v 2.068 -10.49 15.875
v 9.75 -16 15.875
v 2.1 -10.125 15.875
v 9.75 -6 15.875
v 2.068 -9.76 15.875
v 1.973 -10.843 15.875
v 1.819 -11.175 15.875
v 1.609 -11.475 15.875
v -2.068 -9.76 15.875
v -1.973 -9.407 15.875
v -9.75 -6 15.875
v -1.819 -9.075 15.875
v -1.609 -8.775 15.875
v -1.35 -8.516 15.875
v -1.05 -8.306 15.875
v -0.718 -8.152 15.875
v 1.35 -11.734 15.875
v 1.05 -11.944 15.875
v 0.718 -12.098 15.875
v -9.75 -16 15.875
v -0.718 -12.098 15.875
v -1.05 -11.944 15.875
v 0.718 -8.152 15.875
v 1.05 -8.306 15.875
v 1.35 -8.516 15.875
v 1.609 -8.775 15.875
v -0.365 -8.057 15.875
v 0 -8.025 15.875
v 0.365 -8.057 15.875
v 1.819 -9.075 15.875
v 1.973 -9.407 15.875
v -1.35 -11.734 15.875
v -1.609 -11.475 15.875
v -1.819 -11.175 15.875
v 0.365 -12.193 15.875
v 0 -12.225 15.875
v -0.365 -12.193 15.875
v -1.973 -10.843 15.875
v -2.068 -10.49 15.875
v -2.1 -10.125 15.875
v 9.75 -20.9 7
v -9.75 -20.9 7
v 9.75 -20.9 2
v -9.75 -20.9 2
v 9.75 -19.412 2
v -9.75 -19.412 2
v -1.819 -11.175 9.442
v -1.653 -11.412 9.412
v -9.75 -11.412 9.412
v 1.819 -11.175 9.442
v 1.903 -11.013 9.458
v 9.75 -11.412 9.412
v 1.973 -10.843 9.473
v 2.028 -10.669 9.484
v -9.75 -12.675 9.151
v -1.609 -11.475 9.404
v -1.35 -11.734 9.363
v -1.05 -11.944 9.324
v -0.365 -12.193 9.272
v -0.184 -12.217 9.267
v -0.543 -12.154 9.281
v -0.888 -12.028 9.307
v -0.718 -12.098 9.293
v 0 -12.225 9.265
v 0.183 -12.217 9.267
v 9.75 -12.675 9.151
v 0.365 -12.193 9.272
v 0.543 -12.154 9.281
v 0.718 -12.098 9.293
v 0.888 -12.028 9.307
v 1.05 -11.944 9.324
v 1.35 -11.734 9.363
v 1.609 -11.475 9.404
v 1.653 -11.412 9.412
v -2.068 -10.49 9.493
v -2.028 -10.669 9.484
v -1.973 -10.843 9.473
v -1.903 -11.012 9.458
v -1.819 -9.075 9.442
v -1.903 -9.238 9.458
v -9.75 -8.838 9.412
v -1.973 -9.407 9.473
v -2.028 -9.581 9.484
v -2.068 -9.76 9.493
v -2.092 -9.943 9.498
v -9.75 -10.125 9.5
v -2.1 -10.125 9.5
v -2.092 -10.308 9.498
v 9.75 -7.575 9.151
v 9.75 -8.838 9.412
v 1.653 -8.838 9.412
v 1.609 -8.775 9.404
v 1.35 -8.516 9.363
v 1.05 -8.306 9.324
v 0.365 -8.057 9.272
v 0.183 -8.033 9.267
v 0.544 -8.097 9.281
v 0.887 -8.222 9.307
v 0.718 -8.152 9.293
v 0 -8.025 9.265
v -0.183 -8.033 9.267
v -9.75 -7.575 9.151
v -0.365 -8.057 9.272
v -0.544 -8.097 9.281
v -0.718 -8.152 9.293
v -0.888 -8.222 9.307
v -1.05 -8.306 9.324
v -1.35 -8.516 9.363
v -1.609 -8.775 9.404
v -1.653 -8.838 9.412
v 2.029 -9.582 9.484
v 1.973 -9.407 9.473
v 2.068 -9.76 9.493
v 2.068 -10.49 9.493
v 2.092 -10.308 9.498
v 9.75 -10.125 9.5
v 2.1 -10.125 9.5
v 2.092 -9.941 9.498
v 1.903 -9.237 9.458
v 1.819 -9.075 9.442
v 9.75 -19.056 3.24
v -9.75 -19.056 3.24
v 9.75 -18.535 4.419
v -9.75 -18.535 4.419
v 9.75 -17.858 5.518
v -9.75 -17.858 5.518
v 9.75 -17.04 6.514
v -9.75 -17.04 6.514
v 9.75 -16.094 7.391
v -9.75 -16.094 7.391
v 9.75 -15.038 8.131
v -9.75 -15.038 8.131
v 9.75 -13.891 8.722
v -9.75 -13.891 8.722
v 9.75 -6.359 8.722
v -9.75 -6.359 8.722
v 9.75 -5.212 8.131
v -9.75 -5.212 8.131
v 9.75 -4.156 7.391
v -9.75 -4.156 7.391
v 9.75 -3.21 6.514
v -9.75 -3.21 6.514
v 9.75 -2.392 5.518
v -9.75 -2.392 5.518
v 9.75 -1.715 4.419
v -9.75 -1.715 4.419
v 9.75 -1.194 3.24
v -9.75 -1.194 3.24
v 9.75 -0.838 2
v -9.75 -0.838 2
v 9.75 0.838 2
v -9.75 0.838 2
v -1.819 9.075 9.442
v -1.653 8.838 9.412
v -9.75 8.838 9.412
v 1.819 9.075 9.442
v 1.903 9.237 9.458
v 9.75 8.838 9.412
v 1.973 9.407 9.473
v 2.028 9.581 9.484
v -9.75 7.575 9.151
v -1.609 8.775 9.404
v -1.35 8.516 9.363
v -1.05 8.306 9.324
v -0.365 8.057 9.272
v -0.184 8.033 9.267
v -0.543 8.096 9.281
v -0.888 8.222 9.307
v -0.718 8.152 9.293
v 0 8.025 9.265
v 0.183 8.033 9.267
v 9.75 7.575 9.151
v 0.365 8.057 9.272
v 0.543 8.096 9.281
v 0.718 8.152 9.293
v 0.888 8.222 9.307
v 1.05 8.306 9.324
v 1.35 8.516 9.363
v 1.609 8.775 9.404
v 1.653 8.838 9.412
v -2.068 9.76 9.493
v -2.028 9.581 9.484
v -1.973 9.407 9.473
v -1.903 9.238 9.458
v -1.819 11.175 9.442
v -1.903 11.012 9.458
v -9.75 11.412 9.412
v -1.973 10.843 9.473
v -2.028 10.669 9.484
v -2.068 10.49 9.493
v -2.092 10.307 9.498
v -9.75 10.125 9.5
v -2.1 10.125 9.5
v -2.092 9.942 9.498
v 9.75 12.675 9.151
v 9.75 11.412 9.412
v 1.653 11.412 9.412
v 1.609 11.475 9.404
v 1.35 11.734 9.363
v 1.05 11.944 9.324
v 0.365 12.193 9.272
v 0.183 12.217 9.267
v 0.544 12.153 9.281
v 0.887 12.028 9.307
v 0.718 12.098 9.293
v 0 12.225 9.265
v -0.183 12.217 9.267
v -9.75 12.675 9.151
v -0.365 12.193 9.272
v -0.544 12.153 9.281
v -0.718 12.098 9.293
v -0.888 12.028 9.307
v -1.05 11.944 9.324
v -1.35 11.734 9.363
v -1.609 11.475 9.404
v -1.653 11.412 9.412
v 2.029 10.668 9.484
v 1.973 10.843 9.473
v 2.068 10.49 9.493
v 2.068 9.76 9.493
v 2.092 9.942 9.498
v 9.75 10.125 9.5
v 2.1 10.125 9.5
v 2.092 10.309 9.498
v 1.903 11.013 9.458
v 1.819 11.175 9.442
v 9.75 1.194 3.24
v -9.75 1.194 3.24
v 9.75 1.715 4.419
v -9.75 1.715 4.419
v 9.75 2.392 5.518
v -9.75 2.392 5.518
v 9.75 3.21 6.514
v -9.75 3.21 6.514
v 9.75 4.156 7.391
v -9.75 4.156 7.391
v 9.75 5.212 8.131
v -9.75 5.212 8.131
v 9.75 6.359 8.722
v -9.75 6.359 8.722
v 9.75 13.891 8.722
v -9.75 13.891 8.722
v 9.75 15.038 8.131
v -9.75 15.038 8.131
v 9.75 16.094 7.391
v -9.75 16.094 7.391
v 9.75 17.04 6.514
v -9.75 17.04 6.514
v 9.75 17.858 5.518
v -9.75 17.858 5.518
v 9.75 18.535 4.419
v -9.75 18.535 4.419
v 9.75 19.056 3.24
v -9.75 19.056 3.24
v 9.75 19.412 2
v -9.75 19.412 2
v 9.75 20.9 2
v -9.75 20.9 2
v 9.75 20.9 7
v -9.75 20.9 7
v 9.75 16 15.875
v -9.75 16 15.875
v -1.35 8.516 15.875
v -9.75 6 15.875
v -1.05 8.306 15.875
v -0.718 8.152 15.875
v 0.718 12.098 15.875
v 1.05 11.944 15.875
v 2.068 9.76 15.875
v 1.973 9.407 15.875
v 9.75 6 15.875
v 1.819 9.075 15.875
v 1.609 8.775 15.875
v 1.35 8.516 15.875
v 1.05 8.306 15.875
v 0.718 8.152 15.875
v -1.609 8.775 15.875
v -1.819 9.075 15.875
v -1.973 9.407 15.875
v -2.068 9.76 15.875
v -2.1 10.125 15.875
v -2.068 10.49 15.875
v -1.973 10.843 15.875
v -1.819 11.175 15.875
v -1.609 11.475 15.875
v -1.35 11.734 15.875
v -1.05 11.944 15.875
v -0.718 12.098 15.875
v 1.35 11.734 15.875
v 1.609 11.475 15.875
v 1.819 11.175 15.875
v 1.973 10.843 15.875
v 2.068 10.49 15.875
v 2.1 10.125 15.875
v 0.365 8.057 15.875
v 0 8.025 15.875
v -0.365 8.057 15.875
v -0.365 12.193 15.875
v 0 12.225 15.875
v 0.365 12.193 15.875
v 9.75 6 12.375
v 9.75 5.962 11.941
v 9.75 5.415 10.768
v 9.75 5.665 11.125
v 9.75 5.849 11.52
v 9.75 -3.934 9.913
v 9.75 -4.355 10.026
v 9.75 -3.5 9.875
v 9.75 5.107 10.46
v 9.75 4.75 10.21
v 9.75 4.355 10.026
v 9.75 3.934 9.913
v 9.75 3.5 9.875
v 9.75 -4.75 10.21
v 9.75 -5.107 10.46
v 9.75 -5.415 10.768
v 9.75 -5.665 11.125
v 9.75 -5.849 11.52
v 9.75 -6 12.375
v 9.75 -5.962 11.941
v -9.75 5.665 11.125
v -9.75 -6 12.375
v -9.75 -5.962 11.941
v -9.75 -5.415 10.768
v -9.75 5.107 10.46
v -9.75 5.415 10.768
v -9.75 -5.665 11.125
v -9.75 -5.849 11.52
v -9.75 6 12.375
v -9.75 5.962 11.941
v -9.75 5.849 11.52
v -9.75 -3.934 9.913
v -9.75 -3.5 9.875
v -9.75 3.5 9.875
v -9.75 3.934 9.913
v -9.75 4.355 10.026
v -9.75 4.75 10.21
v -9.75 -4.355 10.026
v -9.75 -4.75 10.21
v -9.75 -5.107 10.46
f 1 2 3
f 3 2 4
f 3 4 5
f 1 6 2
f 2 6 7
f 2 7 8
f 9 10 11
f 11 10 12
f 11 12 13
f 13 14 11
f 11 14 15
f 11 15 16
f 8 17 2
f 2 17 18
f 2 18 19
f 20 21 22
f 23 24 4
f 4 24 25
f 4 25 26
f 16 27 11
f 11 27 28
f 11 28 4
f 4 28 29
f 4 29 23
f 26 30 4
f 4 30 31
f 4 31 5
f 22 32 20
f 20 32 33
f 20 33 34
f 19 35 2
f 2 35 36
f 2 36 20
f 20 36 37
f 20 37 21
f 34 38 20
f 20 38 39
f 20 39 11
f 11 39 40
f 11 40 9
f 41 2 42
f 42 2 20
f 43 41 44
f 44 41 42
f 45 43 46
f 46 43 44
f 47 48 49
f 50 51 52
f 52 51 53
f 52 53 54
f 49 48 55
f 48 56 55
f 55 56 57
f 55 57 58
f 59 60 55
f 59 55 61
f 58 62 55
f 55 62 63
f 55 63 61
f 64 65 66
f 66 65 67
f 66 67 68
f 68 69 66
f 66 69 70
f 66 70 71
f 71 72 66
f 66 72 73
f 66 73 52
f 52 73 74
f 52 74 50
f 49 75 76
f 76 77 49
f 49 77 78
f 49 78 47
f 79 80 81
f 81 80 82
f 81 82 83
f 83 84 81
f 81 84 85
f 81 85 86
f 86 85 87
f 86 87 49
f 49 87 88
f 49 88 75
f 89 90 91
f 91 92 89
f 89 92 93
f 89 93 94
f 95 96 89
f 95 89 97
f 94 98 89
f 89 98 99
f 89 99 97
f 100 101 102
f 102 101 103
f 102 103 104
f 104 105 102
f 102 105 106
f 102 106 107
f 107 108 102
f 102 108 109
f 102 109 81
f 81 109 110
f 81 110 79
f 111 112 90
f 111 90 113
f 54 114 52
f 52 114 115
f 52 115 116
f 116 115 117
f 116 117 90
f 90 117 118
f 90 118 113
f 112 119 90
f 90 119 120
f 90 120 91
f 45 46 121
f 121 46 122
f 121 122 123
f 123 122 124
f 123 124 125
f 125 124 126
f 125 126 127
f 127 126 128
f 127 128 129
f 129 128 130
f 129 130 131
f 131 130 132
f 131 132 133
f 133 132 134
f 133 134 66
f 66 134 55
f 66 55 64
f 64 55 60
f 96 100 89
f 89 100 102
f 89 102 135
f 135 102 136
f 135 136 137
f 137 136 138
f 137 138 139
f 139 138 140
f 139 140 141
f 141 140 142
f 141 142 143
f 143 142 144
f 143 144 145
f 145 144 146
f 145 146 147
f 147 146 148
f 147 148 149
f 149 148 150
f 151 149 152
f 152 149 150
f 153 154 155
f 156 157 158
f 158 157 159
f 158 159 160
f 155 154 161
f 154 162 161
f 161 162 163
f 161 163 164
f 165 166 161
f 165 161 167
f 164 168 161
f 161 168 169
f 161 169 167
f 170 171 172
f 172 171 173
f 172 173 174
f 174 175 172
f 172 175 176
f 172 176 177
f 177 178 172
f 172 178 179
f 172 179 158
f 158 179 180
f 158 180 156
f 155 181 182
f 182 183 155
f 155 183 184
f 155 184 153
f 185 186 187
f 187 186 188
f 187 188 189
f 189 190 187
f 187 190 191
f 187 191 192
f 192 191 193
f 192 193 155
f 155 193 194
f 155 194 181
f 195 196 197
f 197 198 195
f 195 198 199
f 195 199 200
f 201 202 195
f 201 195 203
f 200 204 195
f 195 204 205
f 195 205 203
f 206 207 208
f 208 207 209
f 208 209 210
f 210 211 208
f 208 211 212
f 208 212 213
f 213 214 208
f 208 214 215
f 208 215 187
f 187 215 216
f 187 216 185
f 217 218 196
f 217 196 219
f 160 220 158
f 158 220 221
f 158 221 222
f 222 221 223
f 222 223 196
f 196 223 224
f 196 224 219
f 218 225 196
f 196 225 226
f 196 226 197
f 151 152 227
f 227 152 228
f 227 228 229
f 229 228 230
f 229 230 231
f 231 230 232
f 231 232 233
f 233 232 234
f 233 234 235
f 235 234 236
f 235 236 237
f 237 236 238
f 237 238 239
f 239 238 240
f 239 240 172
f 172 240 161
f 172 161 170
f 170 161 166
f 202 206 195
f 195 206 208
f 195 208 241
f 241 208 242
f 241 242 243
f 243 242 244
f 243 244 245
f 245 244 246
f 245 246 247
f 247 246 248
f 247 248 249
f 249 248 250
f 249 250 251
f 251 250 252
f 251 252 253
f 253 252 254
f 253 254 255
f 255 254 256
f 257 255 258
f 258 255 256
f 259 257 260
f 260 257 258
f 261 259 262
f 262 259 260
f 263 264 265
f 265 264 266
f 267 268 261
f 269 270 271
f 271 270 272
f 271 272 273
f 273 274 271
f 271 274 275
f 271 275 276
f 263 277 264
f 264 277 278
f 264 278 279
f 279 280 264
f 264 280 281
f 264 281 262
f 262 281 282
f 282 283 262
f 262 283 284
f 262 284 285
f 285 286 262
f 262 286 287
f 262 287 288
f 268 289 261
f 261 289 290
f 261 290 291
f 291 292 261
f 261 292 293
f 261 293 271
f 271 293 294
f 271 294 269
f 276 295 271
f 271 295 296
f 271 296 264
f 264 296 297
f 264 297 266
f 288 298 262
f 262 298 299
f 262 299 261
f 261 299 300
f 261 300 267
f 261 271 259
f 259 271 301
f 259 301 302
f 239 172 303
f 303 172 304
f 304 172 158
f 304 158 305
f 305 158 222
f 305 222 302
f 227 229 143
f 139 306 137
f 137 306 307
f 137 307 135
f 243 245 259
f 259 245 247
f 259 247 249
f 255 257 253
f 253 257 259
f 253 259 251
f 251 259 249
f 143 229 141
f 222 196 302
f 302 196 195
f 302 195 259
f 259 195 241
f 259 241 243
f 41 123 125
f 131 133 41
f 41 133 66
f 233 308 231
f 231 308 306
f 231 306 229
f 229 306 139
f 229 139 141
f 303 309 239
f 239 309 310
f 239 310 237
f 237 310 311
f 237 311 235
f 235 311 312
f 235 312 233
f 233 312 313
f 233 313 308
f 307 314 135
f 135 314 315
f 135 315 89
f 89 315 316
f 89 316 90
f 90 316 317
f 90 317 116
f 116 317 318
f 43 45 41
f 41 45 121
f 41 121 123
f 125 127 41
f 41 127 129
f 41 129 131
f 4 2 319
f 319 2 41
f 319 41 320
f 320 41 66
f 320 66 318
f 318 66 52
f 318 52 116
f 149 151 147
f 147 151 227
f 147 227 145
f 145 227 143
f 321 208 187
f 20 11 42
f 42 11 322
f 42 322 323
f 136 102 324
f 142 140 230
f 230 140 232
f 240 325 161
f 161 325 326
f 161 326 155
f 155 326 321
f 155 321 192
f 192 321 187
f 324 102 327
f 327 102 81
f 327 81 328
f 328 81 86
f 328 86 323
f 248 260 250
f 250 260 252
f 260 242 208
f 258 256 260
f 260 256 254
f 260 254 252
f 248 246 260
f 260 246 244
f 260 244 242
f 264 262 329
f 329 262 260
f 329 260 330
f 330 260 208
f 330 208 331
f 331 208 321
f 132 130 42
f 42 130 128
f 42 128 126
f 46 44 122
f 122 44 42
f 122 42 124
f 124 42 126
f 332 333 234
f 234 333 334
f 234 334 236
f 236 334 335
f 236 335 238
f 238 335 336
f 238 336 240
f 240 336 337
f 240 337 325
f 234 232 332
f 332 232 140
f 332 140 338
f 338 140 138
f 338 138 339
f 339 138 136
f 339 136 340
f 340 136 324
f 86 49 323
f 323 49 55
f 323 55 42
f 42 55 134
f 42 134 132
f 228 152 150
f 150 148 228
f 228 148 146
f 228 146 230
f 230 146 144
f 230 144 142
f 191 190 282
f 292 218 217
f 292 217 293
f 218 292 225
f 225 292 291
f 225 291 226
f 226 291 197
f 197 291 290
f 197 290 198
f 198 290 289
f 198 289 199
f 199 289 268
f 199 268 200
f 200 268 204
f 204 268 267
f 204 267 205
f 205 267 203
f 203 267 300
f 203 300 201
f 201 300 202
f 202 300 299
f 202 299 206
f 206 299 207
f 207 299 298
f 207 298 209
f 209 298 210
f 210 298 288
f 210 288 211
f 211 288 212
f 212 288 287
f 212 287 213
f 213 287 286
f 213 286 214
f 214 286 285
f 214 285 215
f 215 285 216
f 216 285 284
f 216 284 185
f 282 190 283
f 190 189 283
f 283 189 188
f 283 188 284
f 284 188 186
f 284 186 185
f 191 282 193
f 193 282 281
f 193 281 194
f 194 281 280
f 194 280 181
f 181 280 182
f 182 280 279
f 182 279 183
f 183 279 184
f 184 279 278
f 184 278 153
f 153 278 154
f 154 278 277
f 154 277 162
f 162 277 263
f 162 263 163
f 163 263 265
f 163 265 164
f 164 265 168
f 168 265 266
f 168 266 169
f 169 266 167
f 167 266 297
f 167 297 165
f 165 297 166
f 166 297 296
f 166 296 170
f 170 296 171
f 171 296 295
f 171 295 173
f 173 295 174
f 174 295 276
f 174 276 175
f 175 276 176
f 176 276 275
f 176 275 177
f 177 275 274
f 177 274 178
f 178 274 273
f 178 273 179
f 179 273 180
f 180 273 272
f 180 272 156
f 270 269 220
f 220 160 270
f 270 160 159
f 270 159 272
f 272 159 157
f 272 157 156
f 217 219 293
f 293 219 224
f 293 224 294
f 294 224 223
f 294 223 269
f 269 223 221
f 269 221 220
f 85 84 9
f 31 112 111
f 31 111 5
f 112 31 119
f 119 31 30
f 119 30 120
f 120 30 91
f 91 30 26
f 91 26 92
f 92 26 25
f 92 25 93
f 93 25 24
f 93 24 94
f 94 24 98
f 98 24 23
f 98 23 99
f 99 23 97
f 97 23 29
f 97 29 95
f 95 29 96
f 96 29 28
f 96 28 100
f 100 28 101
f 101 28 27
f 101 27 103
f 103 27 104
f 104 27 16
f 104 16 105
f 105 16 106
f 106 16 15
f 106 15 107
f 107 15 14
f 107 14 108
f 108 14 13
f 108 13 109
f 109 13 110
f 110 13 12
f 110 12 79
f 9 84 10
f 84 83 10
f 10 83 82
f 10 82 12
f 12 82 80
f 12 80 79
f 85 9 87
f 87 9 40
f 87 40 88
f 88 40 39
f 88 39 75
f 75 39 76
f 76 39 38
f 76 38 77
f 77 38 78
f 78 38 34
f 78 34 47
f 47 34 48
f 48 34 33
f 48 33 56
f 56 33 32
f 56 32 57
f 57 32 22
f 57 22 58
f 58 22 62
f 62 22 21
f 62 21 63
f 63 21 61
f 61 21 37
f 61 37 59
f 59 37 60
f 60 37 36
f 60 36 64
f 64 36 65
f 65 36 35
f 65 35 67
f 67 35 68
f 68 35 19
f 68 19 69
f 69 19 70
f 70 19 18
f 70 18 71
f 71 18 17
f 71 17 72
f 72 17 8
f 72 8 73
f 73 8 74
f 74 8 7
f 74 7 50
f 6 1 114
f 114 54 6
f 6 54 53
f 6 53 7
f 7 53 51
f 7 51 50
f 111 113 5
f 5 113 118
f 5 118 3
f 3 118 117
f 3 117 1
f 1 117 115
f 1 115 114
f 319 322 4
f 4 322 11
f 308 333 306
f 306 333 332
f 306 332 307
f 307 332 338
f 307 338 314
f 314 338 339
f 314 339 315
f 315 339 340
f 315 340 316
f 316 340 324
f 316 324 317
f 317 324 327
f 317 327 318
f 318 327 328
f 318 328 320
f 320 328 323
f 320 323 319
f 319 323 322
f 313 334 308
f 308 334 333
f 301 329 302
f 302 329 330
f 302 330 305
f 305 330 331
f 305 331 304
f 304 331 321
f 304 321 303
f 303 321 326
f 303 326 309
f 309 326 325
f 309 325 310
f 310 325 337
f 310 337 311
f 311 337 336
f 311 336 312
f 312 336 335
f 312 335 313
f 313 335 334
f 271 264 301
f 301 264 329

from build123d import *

# Parameters (mm, degrees)
BOSS_EXTRUDE1_DEPTH     = 9.75
SKETCH2_R               = 2.1
CUT_EXTRUDE1_DEPTH      = 27.914459404
CUT_EXTRUDE2_DEPTH      = 33.696722039
CUT_EXTRUDE2_DEPTH_BACK = 33.696722039


with BuildPart() as part:
    # Sketch1 → Boss-Extrude1 (new, symmetric)
    with BuildSketch(Plane(origin=(0, 0, 0), x_dir=(0, 0, -1), z_dir=(1, 0, 0))):
        with BuildLine():
            Line((-15.875, -16), (-15.875, 16))
            Line((-15.875, 16), (-7, 20.9))
            Line((-7, 20.9), (-2, 20.9))
            Line((-2, 20.9), (-2, 19.412087811))
            ThreePointArc((-2, 19.412087811), (-9.5, 10.125), (-2, 0.837912189))
            Line((-2, 0.837912189), (-2, -0.837912189))
            ThreePointArc((-2, -0.837912189), (-9.5, -10.125), (-2, -19.412087811))
            Line((-2, -19.412087811), (-2, -20.9))
            Line((-2, -20.9), (-7, -20.9))
            Line((-7, -20.9), (-15.875, -16))
        make_face()
    extrude(amount=BOSS_EXTRUDE1_DEPTH, both=True)

    # Sketch2 → Cut-Extrude1 (cut, through all)
    with BuildSketch(Plane.XY.offset(15.875)):
        with Locations((0, 10.125)):
            Circle(SKETCH2_R)
        with Locations((0, -10.125)):
            Circle(SKETCH2_R)
    extrude(amount=-CUT_EXTRUDE1_DEPTH, mode=Mode.SUBTRACT)

    # Sketch3 → Cut-Extrude2 (cut, two sides: drawn at the far end of the back side and taken through both)
    with BuildSketch(Plane.ZY.offset(9.75).offset(-CUT_EXTRUDE2_DEPTH_BACK)):
        with BuildLine():
            Line((15.875, 6), (12.375, 6))
            ThreePointArc((12.375, 6), (10.607233047, 5.267766953), (9.875, 3.5))
            Line((9.875, 3.5), (9.875, -3.5))
            ThreePointArc((9.875, -3.5), (10.607233047, -5.267766953), (12.375, -6))
            Line((12.375, -6), (15.875, -6))
            Line((15.875, -6), (15.875, 6))
        make_face()
    extrude(amount=CUT_EXTRUDE2_DEPTH + CUT_EXTRUDE2_DEPTH_BACK, mode=Mode.SUBTRACT)


solid = part.part
